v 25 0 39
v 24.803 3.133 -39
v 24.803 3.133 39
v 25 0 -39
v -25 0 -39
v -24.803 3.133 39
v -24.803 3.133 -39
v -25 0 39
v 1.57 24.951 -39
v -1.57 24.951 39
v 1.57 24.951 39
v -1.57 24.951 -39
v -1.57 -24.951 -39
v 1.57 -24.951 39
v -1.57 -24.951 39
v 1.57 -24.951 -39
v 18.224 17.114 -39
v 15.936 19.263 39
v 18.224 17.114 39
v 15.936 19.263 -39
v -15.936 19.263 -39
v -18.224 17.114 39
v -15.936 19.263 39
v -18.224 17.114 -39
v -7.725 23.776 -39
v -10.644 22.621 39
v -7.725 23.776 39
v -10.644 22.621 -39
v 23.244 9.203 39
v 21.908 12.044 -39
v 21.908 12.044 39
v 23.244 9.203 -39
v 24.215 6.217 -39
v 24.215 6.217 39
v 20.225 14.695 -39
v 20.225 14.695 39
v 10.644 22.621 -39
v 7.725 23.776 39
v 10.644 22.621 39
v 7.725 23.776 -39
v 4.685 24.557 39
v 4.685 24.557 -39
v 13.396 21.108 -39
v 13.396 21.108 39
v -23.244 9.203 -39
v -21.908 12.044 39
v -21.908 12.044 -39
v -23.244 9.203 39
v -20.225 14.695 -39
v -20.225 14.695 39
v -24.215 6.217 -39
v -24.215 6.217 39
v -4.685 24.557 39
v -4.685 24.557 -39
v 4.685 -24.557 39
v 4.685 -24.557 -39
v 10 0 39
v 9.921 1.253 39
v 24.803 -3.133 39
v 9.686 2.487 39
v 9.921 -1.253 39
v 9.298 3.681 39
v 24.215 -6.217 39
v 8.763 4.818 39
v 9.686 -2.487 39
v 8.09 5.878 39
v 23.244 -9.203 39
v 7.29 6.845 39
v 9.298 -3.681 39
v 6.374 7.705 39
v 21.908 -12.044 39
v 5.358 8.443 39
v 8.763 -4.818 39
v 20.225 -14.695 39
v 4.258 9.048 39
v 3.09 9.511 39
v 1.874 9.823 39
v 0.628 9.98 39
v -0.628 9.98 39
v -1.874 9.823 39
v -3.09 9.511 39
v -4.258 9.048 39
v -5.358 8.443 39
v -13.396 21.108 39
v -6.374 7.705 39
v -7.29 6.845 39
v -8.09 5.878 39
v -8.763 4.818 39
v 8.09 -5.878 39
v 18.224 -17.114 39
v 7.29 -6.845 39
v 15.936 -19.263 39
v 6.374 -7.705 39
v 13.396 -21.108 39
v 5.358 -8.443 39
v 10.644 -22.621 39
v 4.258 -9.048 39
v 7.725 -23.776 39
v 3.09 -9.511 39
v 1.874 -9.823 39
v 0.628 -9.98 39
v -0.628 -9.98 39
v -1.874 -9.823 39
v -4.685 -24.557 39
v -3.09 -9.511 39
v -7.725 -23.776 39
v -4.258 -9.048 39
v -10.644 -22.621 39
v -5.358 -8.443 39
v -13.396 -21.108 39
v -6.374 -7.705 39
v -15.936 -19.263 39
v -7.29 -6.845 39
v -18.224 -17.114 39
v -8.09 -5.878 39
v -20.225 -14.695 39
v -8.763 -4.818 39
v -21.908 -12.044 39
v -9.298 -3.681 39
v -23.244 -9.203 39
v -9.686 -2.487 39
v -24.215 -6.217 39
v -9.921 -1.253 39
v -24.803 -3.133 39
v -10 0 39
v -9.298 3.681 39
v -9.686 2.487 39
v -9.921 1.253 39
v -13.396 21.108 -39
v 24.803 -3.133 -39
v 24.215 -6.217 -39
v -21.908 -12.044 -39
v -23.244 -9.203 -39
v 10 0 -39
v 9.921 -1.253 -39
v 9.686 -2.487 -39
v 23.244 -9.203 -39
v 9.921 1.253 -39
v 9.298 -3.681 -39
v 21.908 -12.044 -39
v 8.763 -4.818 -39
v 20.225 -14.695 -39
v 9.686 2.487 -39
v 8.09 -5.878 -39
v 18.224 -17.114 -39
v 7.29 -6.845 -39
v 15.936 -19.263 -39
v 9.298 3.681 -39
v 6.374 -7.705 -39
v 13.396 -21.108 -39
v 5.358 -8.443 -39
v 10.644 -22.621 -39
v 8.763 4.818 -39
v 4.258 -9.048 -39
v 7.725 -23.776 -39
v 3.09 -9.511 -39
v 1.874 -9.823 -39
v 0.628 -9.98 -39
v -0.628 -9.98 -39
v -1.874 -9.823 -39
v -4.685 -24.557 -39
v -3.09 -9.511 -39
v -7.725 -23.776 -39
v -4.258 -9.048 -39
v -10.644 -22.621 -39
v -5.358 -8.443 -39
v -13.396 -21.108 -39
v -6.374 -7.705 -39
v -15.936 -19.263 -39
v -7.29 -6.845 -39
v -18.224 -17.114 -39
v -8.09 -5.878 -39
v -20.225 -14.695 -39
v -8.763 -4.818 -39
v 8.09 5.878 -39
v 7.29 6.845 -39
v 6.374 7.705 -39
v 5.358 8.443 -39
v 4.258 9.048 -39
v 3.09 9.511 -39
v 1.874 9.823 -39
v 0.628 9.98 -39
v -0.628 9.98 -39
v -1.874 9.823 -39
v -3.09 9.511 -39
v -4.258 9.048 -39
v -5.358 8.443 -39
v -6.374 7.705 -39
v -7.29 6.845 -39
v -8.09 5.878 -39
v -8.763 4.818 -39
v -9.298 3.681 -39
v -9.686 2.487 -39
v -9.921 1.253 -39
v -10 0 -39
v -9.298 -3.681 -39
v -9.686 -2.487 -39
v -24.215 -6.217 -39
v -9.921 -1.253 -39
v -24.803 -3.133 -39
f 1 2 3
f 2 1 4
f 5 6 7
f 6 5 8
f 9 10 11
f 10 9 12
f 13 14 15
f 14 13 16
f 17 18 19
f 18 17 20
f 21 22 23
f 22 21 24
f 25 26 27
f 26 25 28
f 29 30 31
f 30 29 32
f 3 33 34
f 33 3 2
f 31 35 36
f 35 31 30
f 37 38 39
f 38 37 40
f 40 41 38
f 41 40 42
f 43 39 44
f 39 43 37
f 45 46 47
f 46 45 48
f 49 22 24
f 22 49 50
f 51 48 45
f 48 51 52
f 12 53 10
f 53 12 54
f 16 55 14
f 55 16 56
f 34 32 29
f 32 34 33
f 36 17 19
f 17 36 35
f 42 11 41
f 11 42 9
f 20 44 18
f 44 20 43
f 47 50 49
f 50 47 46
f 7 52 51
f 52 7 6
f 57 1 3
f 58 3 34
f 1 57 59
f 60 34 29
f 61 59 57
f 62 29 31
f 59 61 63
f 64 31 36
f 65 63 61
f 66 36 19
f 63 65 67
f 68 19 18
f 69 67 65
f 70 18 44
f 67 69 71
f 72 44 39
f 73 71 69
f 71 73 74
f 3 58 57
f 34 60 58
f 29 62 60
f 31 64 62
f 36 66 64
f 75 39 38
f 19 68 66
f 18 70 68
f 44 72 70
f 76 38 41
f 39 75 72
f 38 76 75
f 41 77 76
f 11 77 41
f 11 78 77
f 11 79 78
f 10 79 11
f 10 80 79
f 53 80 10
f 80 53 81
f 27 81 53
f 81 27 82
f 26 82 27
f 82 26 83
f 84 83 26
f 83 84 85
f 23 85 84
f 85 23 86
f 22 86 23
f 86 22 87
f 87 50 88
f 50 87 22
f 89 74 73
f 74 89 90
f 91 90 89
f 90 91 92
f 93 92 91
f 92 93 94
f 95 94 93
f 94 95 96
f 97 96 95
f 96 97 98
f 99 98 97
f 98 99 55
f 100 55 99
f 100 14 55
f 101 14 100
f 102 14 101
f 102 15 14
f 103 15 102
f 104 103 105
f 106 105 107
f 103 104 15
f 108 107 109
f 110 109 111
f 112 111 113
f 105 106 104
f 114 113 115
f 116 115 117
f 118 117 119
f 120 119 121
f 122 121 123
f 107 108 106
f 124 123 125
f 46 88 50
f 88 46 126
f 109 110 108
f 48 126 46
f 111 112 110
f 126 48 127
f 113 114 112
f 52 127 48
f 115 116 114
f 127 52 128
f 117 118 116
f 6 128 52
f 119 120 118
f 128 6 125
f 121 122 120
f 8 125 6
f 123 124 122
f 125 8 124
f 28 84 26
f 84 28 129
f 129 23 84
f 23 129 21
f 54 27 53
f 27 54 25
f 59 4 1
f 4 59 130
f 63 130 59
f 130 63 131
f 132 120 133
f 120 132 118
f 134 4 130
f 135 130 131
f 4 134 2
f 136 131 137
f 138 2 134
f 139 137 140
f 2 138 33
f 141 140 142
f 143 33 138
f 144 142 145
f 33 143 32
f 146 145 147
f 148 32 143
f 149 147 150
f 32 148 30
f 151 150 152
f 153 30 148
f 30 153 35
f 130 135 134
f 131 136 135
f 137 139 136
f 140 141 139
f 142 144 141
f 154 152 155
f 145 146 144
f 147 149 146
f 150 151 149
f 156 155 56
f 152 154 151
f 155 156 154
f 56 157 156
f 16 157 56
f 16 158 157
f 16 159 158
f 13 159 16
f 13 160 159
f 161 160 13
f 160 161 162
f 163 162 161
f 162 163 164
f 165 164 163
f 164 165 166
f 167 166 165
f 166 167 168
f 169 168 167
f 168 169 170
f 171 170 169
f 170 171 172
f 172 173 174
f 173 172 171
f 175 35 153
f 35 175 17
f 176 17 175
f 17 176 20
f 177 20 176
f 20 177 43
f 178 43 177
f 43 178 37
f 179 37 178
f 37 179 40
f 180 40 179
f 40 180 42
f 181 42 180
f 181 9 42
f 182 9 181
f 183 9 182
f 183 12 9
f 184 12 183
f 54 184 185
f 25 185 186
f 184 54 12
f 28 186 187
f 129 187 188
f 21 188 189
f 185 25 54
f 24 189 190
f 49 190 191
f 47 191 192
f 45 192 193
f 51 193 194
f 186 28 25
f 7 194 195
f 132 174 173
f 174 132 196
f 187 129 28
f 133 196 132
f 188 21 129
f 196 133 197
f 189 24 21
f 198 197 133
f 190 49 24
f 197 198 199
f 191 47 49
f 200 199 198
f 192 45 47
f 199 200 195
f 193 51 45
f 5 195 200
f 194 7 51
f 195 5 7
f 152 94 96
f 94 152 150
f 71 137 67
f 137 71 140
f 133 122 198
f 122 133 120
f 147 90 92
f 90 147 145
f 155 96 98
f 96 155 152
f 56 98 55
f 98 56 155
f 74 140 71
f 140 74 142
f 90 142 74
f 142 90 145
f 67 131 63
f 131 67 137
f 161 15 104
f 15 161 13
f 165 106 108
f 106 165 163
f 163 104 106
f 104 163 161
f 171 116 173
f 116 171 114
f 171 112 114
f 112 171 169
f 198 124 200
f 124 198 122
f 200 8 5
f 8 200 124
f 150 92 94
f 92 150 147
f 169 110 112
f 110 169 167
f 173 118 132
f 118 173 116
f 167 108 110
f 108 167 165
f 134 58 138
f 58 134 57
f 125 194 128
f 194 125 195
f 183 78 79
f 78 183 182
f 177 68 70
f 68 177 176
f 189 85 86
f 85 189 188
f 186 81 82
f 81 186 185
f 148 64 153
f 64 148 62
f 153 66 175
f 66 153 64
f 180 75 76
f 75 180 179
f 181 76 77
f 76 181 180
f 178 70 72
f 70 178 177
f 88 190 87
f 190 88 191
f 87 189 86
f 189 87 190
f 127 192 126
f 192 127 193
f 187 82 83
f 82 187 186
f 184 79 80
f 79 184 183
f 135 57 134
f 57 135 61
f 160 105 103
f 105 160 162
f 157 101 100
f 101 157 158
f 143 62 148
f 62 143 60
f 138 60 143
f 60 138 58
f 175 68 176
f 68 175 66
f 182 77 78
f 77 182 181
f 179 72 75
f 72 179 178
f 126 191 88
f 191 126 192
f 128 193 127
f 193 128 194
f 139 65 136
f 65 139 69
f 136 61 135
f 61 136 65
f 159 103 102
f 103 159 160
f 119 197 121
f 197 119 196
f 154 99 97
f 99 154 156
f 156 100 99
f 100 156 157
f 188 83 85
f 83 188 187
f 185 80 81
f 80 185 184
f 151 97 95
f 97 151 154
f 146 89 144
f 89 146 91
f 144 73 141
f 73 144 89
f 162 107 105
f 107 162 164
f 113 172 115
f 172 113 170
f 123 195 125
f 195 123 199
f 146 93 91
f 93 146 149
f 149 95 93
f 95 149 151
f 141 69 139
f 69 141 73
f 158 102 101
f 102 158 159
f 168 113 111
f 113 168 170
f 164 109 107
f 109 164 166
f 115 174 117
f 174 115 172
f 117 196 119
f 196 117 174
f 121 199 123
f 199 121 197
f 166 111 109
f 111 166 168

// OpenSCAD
$fn = 50;


difference() {
	union() {
		translate(v = [0, 0, -39.0000000000]) {
			cylinder(h = 78, r = 25.0000000000);
		}
	}
	union() {
		translate(v = [0, 0, -100.0000000000]) {
			cylinder(h = 200, r = 10);
		}
	}
}
